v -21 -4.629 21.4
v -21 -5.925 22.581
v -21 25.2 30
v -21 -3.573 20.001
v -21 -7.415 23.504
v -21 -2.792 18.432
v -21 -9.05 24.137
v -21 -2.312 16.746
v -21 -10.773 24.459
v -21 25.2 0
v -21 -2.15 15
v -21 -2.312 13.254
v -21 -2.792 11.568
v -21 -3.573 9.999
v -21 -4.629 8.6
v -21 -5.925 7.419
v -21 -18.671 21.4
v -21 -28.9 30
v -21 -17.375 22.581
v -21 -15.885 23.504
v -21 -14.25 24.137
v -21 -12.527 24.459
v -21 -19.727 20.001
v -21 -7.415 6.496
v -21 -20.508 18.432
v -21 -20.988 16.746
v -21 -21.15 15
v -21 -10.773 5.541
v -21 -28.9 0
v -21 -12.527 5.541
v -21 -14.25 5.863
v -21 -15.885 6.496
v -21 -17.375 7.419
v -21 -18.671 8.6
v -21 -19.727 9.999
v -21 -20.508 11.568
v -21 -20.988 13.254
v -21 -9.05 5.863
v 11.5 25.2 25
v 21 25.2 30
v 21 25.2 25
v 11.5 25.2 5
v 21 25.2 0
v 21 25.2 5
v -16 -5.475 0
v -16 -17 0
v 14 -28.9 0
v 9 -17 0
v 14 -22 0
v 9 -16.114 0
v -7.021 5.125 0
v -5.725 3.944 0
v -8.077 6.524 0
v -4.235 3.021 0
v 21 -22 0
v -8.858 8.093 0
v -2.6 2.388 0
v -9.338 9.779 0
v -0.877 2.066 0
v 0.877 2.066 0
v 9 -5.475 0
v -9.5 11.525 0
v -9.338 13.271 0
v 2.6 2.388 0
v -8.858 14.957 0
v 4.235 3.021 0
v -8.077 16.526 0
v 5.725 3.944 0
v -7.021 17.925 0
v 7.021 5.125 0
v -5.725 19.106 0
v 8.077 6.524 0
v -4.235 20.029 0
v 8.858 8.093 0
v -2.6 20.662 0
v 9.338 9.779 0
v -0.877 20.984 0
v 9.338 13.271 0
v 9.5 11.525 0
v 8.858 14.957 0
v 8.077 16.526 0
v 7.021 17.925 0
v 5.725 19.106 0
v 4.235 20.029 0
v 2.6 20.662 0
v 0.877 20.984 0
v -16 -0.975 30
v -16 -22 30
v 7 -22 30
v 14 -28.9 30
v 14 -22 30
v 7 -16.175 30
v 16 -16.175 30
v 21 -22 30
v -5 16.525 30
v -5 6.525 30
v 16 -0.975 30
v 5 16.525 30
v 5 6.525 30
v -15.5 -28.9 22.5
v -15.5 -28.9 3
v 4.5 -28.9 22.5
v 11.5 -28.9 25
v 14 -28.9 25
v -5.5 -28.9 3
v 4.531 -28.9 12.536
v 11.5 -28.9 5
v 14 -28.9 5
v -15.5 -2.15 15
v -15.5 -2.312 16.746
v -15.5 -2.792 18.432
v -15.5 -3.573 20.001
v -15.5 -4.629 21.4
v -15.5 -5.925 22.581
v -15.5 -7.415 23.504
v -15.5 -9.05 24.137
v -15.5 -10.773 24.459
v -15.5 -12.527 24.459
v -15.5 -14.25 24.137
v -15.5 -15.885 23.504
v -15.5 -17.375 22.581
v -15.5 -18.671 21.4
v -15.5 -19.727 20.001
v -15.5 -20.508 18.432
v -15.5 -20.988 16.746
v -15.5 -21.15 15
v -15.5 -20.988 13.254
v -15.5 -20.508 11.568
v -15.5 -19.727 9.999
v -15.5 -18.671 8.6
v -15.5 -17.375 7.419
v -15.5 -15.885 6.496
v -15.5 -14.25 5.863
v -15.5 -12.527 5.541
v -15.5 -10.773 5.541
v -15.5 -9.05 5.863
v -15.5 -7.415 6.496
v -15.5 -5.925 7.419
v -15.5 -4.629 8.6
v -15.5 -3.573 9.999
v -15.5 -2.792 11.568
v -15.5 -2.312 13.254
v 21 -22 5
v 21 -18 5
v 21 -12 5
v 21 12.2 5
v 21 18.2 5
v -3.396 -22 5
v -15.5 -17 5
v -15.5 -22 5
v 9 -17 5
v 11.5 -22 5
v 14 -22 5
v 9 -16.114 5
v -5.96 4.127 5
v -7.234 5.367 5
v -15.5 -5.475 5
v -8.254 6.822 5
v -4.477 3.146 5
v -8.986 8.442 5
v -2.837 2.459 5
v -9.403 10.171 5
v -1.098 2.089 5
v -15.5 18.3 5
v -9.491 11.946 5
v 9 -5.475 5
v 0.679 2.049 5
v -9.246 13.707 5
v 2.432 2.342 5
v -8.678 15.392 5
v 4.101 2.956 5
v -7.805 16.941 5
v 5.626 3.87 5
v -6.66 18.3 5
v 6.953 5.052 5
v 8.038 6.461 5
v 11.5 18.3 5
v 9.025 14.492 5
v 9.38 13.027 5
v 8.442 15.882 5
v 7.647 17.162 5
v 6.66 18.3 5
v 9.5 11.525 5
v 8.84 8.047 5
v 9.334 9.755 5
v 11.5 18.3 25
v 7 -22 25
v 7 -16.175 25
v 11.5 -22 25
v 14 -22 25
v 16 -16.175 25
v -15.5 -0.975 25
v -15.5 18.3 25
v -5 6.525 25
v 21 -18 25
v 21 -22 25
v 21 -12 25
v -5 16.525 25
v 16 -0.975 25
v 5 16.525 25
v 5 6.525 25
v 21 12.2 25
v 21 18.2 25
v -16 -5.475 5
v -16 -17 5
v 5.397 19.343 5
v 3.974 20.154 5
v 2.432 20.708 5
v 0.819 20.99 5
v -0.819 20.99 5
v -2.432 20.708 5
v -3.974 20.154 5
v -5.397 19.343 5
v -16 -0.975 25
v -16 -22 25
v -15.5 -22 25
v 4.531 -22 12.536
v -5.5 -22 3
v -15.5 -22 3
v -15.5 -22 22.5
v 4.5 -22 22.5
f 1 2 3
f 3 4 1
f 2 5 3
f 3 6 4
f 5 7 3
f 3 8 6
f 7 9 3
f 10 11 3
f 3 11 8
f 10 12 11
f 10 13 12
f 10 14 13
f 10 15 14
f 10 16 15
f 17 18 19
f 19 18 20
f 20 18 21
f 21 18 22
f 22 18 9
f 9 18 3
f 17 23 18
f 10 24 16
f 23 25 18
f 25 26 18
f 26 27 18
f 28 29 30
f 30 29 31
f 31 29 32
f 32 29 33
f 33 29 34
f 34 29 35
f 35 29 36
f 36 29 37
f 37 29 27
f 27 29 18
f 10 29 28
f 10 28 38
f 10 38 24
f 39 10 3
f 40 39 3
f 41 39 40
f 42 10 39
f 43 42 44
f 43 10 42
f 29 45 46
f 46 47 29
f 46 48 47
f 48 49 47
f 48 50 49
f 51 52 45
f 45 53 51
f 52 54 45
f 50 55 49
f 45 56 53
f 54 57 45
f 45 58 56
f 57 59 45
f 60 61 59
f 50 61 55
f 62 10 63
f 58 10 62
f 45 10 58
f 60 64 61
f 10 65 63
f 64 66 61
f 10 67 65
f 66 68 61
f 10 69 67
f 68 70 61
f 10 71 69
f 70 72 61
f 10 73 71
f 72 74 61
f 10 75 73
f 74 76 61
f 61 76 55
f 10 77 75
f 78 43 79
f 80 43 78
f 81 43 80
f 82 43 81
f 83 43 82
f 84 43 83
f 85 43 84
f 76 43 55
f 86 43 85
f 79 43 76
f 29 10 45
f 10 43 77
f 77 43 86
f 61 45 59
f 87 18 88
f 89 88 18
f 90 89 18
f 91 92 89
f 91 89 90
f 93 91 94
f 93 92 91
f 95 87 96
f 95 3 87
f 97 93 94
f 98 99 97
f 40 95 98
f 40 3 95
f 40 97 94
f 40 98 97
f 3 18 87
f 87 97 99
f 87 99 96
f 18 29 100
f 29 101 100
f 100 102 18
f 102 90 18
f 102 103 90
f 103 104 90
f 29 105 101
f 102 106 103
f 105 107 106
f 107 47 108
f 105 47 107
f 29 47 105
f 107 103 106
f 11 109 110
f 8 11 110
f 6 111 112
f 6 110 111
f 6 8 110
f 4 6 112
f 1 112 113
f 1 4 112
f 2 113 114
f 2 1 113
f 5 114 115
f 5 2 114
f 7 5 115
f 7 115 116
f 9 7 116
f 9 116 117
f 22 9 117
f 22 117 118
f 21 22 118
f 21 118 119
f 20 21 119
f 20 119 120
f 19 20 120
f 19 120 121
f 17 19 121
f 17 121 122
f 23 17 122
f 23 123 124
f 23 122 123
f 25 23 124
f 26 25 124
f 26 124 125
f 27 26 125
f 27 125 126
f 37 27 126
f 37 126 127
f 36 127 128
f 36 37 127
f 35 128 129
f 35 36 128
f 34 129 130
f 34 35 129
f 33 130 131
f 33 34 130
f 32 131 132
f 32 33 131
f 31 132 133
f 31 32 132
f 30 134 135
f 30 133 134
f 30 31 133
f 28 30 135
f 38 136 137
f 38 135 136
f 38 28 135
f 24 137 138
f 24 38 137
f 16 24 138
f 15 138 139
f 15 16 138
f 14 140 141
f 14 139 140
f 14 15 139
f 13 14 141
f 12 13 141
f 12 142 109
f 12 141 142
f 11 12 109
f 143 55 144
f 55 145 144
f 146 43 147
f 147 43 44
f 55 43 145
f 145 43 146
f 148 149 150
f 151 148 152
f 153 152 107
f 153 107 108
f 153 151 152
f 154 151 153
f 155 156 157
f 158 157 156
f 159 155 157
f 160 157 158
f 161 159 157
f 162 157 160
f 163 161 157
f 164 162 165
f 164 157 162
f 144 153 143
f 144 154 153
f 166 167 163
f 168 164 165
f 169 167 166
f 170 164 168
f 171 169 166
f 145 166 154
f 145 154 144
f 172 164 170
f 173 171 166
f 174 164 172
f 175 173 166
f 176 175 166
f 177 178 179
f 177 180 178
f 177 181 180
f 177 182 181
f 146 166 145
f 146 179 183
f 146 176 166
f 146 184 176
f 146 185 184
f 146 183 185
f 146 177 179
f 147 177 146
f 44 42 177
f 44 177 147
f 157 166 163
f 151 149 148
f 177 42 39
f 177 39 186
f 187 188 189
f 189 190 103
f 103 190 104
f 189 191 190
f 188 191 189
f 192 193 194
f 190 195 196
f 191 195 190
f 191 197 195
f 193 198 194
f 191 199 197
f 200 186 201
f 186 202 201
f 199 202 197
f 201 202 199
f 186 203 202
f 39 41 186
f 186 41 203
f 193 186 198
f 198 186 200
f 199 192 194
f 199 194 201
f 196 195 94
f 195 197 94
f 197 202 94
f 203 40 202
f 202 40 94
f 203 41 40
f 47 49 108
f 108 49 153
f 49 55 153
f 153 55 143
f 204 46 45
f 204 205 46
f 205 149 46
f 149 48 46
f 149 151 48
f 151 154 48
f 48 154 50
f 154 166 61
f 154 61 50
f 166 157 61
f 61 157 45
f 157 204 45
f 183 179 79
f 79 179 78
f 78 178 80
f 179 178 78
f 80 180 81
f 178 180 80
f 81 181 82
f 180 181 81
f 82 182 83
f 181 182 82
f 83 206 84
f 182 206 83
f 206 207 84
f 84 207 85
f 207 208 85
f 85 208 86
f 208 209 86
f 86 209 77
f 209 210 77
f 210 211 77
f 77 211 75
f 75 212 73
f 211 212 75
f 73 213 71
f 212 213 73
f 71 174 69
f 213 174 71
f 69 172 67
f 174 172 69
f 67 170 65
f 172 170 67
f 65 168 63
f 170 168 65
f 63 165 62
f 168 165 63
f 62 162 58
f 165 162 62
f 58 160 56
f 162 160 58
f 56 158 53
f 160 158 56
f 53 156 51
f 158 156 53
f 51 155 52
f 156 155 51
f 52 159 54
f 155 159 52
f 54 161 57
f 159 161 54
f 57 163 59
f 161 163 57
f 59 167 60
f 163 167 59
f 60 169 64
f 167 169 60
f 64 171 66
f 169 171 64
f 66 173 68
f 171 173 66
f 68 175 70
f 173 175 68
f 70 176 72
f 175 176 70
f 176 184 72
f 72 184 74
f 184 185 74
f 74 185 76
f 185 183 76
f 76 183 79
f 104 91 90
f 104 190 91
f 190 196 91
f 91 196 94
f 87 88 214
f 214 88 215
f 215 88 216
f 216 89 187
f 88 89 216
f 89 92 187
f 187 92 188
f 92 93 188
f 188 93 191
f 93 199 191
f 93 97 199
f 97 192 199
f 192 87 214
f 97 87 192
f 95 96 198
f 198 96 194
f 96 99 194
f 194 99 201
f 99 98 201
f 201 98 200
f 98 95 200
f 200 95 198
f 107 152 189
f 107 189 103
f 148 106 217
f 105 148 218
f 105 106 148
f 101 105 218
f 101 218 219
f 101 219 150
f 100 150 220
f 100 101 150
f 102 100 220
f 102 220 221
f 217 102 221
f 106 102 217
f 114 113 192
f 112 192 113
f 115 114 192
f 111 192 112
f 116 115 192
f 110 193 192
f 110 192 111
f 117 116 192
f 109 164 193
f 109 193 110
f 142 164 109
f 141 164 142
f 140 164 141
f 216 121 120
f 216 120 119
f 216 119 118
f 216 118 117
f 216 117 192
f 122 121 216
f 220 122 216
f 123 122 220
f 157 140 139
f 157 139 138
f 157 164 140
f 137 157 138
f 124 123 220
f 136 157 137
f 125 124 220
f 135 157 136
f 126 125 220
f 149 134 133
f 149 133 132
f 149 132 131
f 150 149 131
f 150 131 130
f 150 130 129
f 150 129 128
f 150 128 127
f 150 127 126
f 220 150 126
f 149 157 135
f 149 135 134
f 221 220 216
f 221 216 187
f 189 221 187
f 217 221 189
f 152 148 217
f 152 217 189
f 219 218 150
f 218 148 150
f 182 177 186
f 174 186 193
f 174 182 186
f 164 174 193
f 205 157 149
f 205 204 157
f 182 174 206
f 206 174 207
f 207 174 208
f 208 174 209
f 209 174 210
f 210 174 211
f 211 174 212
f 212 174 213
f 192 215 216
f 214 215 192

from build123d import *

# Parameters (mm, degrees)
PAD_DEPTH       = 30
POCKET_DEPTH    = 20
POCKET001_DEPTH = 6.9
SKETCH004_R     = 9.5
POCKET002_DEPTH = 5
SKETCH005_W     = 10
SKETCH005_H     = 10
POCKET003_DEPTH = 5
SKETCH006_R     = 9.5
POCKET004_DEPTH = 56


with BuildPart() as part:
    # Sketch → Pad (new body)
    with BuildSketch(Plane.XY):
        Polygon((-21, 25.2), (-21, -28.9), (14, -28.9), (14, -22), (21, -22), (21, 25.2), align=None)
    extrude(amount=PAD_DEPTH)

    # Sketch001 → Pocket (cut)
    with BuildSketch(Plane.XY.offset(5)):
        Polygon((-15.5, 18.3), (-15.5, -22), (11.5, -22), (11.5, -28.9), (14, -28.9), (14, -22), (21, -22), (21, -18), (27.5, -18), (27.5, -12), (21, -12), (21, 12.2), (21, 12.2), (21, 18.2), (21, 18.2), (21, 25.2), (11.5, 25.2), (11.5, 18.3), align=None)
    extrude(amount=POCKET_DEPTH, mode=Mode.SUBTRACT)

    # Sketch003 → Pocket001 (cut)
    with BuildSketch(Plane(origin=(-15.5, -28.9, 3), x_dir=(1, 0, 0), z_dir=(0, -1, 0))):
        Polygon((20.030856, 9.535838), (10, 0), (0, 0), (0, 19.5), (20, 19.5), align=None)
    extrude(amount=-POCKET001_DEPTH, mode=Mode.SUBTRACT)

    # Sketch004 → Pocket002 (cut)
    with BuildSketch(Plane.XY.offset(5)):
        with Locations((0, 11.525)):
            Circle(SKETCH004_R)
        Polygon((-16, -5.475), (-16, -17), (9, -17), (9, -16.114332), (9, -5.475), align=None)
    extrude(amount=-POCKET002_DEPTH, mode=Mode.SUBTRACT)

    # Sketch005 → Pocket003 (cut)
    with BuildSketch(Plane.XY.offset(30)):
        Polygon((-16, -0.975), (-16, -22), (7, -22), (7, -16.175392), (16, -16.175392), (16, -0.975), align=None)
        with Locations((0, 11.525)):
            Rectangle(SKETCH005_W, SKETCH005_H)
    extrude(amount=-POCKET003_DEPTH, mode=Mode.SUBTRACT)

    # Sketch006 → Pocket004 (cut)
    with BuildSketch(Plane.YZ.offset(-22)):
        with Locations((-11.65, 15)):
            Circle(SKETCH006_R)
    extrude(amount=POCKET004_DEPTH, mode=Mode.SUBTRACT)


solid = part.part
